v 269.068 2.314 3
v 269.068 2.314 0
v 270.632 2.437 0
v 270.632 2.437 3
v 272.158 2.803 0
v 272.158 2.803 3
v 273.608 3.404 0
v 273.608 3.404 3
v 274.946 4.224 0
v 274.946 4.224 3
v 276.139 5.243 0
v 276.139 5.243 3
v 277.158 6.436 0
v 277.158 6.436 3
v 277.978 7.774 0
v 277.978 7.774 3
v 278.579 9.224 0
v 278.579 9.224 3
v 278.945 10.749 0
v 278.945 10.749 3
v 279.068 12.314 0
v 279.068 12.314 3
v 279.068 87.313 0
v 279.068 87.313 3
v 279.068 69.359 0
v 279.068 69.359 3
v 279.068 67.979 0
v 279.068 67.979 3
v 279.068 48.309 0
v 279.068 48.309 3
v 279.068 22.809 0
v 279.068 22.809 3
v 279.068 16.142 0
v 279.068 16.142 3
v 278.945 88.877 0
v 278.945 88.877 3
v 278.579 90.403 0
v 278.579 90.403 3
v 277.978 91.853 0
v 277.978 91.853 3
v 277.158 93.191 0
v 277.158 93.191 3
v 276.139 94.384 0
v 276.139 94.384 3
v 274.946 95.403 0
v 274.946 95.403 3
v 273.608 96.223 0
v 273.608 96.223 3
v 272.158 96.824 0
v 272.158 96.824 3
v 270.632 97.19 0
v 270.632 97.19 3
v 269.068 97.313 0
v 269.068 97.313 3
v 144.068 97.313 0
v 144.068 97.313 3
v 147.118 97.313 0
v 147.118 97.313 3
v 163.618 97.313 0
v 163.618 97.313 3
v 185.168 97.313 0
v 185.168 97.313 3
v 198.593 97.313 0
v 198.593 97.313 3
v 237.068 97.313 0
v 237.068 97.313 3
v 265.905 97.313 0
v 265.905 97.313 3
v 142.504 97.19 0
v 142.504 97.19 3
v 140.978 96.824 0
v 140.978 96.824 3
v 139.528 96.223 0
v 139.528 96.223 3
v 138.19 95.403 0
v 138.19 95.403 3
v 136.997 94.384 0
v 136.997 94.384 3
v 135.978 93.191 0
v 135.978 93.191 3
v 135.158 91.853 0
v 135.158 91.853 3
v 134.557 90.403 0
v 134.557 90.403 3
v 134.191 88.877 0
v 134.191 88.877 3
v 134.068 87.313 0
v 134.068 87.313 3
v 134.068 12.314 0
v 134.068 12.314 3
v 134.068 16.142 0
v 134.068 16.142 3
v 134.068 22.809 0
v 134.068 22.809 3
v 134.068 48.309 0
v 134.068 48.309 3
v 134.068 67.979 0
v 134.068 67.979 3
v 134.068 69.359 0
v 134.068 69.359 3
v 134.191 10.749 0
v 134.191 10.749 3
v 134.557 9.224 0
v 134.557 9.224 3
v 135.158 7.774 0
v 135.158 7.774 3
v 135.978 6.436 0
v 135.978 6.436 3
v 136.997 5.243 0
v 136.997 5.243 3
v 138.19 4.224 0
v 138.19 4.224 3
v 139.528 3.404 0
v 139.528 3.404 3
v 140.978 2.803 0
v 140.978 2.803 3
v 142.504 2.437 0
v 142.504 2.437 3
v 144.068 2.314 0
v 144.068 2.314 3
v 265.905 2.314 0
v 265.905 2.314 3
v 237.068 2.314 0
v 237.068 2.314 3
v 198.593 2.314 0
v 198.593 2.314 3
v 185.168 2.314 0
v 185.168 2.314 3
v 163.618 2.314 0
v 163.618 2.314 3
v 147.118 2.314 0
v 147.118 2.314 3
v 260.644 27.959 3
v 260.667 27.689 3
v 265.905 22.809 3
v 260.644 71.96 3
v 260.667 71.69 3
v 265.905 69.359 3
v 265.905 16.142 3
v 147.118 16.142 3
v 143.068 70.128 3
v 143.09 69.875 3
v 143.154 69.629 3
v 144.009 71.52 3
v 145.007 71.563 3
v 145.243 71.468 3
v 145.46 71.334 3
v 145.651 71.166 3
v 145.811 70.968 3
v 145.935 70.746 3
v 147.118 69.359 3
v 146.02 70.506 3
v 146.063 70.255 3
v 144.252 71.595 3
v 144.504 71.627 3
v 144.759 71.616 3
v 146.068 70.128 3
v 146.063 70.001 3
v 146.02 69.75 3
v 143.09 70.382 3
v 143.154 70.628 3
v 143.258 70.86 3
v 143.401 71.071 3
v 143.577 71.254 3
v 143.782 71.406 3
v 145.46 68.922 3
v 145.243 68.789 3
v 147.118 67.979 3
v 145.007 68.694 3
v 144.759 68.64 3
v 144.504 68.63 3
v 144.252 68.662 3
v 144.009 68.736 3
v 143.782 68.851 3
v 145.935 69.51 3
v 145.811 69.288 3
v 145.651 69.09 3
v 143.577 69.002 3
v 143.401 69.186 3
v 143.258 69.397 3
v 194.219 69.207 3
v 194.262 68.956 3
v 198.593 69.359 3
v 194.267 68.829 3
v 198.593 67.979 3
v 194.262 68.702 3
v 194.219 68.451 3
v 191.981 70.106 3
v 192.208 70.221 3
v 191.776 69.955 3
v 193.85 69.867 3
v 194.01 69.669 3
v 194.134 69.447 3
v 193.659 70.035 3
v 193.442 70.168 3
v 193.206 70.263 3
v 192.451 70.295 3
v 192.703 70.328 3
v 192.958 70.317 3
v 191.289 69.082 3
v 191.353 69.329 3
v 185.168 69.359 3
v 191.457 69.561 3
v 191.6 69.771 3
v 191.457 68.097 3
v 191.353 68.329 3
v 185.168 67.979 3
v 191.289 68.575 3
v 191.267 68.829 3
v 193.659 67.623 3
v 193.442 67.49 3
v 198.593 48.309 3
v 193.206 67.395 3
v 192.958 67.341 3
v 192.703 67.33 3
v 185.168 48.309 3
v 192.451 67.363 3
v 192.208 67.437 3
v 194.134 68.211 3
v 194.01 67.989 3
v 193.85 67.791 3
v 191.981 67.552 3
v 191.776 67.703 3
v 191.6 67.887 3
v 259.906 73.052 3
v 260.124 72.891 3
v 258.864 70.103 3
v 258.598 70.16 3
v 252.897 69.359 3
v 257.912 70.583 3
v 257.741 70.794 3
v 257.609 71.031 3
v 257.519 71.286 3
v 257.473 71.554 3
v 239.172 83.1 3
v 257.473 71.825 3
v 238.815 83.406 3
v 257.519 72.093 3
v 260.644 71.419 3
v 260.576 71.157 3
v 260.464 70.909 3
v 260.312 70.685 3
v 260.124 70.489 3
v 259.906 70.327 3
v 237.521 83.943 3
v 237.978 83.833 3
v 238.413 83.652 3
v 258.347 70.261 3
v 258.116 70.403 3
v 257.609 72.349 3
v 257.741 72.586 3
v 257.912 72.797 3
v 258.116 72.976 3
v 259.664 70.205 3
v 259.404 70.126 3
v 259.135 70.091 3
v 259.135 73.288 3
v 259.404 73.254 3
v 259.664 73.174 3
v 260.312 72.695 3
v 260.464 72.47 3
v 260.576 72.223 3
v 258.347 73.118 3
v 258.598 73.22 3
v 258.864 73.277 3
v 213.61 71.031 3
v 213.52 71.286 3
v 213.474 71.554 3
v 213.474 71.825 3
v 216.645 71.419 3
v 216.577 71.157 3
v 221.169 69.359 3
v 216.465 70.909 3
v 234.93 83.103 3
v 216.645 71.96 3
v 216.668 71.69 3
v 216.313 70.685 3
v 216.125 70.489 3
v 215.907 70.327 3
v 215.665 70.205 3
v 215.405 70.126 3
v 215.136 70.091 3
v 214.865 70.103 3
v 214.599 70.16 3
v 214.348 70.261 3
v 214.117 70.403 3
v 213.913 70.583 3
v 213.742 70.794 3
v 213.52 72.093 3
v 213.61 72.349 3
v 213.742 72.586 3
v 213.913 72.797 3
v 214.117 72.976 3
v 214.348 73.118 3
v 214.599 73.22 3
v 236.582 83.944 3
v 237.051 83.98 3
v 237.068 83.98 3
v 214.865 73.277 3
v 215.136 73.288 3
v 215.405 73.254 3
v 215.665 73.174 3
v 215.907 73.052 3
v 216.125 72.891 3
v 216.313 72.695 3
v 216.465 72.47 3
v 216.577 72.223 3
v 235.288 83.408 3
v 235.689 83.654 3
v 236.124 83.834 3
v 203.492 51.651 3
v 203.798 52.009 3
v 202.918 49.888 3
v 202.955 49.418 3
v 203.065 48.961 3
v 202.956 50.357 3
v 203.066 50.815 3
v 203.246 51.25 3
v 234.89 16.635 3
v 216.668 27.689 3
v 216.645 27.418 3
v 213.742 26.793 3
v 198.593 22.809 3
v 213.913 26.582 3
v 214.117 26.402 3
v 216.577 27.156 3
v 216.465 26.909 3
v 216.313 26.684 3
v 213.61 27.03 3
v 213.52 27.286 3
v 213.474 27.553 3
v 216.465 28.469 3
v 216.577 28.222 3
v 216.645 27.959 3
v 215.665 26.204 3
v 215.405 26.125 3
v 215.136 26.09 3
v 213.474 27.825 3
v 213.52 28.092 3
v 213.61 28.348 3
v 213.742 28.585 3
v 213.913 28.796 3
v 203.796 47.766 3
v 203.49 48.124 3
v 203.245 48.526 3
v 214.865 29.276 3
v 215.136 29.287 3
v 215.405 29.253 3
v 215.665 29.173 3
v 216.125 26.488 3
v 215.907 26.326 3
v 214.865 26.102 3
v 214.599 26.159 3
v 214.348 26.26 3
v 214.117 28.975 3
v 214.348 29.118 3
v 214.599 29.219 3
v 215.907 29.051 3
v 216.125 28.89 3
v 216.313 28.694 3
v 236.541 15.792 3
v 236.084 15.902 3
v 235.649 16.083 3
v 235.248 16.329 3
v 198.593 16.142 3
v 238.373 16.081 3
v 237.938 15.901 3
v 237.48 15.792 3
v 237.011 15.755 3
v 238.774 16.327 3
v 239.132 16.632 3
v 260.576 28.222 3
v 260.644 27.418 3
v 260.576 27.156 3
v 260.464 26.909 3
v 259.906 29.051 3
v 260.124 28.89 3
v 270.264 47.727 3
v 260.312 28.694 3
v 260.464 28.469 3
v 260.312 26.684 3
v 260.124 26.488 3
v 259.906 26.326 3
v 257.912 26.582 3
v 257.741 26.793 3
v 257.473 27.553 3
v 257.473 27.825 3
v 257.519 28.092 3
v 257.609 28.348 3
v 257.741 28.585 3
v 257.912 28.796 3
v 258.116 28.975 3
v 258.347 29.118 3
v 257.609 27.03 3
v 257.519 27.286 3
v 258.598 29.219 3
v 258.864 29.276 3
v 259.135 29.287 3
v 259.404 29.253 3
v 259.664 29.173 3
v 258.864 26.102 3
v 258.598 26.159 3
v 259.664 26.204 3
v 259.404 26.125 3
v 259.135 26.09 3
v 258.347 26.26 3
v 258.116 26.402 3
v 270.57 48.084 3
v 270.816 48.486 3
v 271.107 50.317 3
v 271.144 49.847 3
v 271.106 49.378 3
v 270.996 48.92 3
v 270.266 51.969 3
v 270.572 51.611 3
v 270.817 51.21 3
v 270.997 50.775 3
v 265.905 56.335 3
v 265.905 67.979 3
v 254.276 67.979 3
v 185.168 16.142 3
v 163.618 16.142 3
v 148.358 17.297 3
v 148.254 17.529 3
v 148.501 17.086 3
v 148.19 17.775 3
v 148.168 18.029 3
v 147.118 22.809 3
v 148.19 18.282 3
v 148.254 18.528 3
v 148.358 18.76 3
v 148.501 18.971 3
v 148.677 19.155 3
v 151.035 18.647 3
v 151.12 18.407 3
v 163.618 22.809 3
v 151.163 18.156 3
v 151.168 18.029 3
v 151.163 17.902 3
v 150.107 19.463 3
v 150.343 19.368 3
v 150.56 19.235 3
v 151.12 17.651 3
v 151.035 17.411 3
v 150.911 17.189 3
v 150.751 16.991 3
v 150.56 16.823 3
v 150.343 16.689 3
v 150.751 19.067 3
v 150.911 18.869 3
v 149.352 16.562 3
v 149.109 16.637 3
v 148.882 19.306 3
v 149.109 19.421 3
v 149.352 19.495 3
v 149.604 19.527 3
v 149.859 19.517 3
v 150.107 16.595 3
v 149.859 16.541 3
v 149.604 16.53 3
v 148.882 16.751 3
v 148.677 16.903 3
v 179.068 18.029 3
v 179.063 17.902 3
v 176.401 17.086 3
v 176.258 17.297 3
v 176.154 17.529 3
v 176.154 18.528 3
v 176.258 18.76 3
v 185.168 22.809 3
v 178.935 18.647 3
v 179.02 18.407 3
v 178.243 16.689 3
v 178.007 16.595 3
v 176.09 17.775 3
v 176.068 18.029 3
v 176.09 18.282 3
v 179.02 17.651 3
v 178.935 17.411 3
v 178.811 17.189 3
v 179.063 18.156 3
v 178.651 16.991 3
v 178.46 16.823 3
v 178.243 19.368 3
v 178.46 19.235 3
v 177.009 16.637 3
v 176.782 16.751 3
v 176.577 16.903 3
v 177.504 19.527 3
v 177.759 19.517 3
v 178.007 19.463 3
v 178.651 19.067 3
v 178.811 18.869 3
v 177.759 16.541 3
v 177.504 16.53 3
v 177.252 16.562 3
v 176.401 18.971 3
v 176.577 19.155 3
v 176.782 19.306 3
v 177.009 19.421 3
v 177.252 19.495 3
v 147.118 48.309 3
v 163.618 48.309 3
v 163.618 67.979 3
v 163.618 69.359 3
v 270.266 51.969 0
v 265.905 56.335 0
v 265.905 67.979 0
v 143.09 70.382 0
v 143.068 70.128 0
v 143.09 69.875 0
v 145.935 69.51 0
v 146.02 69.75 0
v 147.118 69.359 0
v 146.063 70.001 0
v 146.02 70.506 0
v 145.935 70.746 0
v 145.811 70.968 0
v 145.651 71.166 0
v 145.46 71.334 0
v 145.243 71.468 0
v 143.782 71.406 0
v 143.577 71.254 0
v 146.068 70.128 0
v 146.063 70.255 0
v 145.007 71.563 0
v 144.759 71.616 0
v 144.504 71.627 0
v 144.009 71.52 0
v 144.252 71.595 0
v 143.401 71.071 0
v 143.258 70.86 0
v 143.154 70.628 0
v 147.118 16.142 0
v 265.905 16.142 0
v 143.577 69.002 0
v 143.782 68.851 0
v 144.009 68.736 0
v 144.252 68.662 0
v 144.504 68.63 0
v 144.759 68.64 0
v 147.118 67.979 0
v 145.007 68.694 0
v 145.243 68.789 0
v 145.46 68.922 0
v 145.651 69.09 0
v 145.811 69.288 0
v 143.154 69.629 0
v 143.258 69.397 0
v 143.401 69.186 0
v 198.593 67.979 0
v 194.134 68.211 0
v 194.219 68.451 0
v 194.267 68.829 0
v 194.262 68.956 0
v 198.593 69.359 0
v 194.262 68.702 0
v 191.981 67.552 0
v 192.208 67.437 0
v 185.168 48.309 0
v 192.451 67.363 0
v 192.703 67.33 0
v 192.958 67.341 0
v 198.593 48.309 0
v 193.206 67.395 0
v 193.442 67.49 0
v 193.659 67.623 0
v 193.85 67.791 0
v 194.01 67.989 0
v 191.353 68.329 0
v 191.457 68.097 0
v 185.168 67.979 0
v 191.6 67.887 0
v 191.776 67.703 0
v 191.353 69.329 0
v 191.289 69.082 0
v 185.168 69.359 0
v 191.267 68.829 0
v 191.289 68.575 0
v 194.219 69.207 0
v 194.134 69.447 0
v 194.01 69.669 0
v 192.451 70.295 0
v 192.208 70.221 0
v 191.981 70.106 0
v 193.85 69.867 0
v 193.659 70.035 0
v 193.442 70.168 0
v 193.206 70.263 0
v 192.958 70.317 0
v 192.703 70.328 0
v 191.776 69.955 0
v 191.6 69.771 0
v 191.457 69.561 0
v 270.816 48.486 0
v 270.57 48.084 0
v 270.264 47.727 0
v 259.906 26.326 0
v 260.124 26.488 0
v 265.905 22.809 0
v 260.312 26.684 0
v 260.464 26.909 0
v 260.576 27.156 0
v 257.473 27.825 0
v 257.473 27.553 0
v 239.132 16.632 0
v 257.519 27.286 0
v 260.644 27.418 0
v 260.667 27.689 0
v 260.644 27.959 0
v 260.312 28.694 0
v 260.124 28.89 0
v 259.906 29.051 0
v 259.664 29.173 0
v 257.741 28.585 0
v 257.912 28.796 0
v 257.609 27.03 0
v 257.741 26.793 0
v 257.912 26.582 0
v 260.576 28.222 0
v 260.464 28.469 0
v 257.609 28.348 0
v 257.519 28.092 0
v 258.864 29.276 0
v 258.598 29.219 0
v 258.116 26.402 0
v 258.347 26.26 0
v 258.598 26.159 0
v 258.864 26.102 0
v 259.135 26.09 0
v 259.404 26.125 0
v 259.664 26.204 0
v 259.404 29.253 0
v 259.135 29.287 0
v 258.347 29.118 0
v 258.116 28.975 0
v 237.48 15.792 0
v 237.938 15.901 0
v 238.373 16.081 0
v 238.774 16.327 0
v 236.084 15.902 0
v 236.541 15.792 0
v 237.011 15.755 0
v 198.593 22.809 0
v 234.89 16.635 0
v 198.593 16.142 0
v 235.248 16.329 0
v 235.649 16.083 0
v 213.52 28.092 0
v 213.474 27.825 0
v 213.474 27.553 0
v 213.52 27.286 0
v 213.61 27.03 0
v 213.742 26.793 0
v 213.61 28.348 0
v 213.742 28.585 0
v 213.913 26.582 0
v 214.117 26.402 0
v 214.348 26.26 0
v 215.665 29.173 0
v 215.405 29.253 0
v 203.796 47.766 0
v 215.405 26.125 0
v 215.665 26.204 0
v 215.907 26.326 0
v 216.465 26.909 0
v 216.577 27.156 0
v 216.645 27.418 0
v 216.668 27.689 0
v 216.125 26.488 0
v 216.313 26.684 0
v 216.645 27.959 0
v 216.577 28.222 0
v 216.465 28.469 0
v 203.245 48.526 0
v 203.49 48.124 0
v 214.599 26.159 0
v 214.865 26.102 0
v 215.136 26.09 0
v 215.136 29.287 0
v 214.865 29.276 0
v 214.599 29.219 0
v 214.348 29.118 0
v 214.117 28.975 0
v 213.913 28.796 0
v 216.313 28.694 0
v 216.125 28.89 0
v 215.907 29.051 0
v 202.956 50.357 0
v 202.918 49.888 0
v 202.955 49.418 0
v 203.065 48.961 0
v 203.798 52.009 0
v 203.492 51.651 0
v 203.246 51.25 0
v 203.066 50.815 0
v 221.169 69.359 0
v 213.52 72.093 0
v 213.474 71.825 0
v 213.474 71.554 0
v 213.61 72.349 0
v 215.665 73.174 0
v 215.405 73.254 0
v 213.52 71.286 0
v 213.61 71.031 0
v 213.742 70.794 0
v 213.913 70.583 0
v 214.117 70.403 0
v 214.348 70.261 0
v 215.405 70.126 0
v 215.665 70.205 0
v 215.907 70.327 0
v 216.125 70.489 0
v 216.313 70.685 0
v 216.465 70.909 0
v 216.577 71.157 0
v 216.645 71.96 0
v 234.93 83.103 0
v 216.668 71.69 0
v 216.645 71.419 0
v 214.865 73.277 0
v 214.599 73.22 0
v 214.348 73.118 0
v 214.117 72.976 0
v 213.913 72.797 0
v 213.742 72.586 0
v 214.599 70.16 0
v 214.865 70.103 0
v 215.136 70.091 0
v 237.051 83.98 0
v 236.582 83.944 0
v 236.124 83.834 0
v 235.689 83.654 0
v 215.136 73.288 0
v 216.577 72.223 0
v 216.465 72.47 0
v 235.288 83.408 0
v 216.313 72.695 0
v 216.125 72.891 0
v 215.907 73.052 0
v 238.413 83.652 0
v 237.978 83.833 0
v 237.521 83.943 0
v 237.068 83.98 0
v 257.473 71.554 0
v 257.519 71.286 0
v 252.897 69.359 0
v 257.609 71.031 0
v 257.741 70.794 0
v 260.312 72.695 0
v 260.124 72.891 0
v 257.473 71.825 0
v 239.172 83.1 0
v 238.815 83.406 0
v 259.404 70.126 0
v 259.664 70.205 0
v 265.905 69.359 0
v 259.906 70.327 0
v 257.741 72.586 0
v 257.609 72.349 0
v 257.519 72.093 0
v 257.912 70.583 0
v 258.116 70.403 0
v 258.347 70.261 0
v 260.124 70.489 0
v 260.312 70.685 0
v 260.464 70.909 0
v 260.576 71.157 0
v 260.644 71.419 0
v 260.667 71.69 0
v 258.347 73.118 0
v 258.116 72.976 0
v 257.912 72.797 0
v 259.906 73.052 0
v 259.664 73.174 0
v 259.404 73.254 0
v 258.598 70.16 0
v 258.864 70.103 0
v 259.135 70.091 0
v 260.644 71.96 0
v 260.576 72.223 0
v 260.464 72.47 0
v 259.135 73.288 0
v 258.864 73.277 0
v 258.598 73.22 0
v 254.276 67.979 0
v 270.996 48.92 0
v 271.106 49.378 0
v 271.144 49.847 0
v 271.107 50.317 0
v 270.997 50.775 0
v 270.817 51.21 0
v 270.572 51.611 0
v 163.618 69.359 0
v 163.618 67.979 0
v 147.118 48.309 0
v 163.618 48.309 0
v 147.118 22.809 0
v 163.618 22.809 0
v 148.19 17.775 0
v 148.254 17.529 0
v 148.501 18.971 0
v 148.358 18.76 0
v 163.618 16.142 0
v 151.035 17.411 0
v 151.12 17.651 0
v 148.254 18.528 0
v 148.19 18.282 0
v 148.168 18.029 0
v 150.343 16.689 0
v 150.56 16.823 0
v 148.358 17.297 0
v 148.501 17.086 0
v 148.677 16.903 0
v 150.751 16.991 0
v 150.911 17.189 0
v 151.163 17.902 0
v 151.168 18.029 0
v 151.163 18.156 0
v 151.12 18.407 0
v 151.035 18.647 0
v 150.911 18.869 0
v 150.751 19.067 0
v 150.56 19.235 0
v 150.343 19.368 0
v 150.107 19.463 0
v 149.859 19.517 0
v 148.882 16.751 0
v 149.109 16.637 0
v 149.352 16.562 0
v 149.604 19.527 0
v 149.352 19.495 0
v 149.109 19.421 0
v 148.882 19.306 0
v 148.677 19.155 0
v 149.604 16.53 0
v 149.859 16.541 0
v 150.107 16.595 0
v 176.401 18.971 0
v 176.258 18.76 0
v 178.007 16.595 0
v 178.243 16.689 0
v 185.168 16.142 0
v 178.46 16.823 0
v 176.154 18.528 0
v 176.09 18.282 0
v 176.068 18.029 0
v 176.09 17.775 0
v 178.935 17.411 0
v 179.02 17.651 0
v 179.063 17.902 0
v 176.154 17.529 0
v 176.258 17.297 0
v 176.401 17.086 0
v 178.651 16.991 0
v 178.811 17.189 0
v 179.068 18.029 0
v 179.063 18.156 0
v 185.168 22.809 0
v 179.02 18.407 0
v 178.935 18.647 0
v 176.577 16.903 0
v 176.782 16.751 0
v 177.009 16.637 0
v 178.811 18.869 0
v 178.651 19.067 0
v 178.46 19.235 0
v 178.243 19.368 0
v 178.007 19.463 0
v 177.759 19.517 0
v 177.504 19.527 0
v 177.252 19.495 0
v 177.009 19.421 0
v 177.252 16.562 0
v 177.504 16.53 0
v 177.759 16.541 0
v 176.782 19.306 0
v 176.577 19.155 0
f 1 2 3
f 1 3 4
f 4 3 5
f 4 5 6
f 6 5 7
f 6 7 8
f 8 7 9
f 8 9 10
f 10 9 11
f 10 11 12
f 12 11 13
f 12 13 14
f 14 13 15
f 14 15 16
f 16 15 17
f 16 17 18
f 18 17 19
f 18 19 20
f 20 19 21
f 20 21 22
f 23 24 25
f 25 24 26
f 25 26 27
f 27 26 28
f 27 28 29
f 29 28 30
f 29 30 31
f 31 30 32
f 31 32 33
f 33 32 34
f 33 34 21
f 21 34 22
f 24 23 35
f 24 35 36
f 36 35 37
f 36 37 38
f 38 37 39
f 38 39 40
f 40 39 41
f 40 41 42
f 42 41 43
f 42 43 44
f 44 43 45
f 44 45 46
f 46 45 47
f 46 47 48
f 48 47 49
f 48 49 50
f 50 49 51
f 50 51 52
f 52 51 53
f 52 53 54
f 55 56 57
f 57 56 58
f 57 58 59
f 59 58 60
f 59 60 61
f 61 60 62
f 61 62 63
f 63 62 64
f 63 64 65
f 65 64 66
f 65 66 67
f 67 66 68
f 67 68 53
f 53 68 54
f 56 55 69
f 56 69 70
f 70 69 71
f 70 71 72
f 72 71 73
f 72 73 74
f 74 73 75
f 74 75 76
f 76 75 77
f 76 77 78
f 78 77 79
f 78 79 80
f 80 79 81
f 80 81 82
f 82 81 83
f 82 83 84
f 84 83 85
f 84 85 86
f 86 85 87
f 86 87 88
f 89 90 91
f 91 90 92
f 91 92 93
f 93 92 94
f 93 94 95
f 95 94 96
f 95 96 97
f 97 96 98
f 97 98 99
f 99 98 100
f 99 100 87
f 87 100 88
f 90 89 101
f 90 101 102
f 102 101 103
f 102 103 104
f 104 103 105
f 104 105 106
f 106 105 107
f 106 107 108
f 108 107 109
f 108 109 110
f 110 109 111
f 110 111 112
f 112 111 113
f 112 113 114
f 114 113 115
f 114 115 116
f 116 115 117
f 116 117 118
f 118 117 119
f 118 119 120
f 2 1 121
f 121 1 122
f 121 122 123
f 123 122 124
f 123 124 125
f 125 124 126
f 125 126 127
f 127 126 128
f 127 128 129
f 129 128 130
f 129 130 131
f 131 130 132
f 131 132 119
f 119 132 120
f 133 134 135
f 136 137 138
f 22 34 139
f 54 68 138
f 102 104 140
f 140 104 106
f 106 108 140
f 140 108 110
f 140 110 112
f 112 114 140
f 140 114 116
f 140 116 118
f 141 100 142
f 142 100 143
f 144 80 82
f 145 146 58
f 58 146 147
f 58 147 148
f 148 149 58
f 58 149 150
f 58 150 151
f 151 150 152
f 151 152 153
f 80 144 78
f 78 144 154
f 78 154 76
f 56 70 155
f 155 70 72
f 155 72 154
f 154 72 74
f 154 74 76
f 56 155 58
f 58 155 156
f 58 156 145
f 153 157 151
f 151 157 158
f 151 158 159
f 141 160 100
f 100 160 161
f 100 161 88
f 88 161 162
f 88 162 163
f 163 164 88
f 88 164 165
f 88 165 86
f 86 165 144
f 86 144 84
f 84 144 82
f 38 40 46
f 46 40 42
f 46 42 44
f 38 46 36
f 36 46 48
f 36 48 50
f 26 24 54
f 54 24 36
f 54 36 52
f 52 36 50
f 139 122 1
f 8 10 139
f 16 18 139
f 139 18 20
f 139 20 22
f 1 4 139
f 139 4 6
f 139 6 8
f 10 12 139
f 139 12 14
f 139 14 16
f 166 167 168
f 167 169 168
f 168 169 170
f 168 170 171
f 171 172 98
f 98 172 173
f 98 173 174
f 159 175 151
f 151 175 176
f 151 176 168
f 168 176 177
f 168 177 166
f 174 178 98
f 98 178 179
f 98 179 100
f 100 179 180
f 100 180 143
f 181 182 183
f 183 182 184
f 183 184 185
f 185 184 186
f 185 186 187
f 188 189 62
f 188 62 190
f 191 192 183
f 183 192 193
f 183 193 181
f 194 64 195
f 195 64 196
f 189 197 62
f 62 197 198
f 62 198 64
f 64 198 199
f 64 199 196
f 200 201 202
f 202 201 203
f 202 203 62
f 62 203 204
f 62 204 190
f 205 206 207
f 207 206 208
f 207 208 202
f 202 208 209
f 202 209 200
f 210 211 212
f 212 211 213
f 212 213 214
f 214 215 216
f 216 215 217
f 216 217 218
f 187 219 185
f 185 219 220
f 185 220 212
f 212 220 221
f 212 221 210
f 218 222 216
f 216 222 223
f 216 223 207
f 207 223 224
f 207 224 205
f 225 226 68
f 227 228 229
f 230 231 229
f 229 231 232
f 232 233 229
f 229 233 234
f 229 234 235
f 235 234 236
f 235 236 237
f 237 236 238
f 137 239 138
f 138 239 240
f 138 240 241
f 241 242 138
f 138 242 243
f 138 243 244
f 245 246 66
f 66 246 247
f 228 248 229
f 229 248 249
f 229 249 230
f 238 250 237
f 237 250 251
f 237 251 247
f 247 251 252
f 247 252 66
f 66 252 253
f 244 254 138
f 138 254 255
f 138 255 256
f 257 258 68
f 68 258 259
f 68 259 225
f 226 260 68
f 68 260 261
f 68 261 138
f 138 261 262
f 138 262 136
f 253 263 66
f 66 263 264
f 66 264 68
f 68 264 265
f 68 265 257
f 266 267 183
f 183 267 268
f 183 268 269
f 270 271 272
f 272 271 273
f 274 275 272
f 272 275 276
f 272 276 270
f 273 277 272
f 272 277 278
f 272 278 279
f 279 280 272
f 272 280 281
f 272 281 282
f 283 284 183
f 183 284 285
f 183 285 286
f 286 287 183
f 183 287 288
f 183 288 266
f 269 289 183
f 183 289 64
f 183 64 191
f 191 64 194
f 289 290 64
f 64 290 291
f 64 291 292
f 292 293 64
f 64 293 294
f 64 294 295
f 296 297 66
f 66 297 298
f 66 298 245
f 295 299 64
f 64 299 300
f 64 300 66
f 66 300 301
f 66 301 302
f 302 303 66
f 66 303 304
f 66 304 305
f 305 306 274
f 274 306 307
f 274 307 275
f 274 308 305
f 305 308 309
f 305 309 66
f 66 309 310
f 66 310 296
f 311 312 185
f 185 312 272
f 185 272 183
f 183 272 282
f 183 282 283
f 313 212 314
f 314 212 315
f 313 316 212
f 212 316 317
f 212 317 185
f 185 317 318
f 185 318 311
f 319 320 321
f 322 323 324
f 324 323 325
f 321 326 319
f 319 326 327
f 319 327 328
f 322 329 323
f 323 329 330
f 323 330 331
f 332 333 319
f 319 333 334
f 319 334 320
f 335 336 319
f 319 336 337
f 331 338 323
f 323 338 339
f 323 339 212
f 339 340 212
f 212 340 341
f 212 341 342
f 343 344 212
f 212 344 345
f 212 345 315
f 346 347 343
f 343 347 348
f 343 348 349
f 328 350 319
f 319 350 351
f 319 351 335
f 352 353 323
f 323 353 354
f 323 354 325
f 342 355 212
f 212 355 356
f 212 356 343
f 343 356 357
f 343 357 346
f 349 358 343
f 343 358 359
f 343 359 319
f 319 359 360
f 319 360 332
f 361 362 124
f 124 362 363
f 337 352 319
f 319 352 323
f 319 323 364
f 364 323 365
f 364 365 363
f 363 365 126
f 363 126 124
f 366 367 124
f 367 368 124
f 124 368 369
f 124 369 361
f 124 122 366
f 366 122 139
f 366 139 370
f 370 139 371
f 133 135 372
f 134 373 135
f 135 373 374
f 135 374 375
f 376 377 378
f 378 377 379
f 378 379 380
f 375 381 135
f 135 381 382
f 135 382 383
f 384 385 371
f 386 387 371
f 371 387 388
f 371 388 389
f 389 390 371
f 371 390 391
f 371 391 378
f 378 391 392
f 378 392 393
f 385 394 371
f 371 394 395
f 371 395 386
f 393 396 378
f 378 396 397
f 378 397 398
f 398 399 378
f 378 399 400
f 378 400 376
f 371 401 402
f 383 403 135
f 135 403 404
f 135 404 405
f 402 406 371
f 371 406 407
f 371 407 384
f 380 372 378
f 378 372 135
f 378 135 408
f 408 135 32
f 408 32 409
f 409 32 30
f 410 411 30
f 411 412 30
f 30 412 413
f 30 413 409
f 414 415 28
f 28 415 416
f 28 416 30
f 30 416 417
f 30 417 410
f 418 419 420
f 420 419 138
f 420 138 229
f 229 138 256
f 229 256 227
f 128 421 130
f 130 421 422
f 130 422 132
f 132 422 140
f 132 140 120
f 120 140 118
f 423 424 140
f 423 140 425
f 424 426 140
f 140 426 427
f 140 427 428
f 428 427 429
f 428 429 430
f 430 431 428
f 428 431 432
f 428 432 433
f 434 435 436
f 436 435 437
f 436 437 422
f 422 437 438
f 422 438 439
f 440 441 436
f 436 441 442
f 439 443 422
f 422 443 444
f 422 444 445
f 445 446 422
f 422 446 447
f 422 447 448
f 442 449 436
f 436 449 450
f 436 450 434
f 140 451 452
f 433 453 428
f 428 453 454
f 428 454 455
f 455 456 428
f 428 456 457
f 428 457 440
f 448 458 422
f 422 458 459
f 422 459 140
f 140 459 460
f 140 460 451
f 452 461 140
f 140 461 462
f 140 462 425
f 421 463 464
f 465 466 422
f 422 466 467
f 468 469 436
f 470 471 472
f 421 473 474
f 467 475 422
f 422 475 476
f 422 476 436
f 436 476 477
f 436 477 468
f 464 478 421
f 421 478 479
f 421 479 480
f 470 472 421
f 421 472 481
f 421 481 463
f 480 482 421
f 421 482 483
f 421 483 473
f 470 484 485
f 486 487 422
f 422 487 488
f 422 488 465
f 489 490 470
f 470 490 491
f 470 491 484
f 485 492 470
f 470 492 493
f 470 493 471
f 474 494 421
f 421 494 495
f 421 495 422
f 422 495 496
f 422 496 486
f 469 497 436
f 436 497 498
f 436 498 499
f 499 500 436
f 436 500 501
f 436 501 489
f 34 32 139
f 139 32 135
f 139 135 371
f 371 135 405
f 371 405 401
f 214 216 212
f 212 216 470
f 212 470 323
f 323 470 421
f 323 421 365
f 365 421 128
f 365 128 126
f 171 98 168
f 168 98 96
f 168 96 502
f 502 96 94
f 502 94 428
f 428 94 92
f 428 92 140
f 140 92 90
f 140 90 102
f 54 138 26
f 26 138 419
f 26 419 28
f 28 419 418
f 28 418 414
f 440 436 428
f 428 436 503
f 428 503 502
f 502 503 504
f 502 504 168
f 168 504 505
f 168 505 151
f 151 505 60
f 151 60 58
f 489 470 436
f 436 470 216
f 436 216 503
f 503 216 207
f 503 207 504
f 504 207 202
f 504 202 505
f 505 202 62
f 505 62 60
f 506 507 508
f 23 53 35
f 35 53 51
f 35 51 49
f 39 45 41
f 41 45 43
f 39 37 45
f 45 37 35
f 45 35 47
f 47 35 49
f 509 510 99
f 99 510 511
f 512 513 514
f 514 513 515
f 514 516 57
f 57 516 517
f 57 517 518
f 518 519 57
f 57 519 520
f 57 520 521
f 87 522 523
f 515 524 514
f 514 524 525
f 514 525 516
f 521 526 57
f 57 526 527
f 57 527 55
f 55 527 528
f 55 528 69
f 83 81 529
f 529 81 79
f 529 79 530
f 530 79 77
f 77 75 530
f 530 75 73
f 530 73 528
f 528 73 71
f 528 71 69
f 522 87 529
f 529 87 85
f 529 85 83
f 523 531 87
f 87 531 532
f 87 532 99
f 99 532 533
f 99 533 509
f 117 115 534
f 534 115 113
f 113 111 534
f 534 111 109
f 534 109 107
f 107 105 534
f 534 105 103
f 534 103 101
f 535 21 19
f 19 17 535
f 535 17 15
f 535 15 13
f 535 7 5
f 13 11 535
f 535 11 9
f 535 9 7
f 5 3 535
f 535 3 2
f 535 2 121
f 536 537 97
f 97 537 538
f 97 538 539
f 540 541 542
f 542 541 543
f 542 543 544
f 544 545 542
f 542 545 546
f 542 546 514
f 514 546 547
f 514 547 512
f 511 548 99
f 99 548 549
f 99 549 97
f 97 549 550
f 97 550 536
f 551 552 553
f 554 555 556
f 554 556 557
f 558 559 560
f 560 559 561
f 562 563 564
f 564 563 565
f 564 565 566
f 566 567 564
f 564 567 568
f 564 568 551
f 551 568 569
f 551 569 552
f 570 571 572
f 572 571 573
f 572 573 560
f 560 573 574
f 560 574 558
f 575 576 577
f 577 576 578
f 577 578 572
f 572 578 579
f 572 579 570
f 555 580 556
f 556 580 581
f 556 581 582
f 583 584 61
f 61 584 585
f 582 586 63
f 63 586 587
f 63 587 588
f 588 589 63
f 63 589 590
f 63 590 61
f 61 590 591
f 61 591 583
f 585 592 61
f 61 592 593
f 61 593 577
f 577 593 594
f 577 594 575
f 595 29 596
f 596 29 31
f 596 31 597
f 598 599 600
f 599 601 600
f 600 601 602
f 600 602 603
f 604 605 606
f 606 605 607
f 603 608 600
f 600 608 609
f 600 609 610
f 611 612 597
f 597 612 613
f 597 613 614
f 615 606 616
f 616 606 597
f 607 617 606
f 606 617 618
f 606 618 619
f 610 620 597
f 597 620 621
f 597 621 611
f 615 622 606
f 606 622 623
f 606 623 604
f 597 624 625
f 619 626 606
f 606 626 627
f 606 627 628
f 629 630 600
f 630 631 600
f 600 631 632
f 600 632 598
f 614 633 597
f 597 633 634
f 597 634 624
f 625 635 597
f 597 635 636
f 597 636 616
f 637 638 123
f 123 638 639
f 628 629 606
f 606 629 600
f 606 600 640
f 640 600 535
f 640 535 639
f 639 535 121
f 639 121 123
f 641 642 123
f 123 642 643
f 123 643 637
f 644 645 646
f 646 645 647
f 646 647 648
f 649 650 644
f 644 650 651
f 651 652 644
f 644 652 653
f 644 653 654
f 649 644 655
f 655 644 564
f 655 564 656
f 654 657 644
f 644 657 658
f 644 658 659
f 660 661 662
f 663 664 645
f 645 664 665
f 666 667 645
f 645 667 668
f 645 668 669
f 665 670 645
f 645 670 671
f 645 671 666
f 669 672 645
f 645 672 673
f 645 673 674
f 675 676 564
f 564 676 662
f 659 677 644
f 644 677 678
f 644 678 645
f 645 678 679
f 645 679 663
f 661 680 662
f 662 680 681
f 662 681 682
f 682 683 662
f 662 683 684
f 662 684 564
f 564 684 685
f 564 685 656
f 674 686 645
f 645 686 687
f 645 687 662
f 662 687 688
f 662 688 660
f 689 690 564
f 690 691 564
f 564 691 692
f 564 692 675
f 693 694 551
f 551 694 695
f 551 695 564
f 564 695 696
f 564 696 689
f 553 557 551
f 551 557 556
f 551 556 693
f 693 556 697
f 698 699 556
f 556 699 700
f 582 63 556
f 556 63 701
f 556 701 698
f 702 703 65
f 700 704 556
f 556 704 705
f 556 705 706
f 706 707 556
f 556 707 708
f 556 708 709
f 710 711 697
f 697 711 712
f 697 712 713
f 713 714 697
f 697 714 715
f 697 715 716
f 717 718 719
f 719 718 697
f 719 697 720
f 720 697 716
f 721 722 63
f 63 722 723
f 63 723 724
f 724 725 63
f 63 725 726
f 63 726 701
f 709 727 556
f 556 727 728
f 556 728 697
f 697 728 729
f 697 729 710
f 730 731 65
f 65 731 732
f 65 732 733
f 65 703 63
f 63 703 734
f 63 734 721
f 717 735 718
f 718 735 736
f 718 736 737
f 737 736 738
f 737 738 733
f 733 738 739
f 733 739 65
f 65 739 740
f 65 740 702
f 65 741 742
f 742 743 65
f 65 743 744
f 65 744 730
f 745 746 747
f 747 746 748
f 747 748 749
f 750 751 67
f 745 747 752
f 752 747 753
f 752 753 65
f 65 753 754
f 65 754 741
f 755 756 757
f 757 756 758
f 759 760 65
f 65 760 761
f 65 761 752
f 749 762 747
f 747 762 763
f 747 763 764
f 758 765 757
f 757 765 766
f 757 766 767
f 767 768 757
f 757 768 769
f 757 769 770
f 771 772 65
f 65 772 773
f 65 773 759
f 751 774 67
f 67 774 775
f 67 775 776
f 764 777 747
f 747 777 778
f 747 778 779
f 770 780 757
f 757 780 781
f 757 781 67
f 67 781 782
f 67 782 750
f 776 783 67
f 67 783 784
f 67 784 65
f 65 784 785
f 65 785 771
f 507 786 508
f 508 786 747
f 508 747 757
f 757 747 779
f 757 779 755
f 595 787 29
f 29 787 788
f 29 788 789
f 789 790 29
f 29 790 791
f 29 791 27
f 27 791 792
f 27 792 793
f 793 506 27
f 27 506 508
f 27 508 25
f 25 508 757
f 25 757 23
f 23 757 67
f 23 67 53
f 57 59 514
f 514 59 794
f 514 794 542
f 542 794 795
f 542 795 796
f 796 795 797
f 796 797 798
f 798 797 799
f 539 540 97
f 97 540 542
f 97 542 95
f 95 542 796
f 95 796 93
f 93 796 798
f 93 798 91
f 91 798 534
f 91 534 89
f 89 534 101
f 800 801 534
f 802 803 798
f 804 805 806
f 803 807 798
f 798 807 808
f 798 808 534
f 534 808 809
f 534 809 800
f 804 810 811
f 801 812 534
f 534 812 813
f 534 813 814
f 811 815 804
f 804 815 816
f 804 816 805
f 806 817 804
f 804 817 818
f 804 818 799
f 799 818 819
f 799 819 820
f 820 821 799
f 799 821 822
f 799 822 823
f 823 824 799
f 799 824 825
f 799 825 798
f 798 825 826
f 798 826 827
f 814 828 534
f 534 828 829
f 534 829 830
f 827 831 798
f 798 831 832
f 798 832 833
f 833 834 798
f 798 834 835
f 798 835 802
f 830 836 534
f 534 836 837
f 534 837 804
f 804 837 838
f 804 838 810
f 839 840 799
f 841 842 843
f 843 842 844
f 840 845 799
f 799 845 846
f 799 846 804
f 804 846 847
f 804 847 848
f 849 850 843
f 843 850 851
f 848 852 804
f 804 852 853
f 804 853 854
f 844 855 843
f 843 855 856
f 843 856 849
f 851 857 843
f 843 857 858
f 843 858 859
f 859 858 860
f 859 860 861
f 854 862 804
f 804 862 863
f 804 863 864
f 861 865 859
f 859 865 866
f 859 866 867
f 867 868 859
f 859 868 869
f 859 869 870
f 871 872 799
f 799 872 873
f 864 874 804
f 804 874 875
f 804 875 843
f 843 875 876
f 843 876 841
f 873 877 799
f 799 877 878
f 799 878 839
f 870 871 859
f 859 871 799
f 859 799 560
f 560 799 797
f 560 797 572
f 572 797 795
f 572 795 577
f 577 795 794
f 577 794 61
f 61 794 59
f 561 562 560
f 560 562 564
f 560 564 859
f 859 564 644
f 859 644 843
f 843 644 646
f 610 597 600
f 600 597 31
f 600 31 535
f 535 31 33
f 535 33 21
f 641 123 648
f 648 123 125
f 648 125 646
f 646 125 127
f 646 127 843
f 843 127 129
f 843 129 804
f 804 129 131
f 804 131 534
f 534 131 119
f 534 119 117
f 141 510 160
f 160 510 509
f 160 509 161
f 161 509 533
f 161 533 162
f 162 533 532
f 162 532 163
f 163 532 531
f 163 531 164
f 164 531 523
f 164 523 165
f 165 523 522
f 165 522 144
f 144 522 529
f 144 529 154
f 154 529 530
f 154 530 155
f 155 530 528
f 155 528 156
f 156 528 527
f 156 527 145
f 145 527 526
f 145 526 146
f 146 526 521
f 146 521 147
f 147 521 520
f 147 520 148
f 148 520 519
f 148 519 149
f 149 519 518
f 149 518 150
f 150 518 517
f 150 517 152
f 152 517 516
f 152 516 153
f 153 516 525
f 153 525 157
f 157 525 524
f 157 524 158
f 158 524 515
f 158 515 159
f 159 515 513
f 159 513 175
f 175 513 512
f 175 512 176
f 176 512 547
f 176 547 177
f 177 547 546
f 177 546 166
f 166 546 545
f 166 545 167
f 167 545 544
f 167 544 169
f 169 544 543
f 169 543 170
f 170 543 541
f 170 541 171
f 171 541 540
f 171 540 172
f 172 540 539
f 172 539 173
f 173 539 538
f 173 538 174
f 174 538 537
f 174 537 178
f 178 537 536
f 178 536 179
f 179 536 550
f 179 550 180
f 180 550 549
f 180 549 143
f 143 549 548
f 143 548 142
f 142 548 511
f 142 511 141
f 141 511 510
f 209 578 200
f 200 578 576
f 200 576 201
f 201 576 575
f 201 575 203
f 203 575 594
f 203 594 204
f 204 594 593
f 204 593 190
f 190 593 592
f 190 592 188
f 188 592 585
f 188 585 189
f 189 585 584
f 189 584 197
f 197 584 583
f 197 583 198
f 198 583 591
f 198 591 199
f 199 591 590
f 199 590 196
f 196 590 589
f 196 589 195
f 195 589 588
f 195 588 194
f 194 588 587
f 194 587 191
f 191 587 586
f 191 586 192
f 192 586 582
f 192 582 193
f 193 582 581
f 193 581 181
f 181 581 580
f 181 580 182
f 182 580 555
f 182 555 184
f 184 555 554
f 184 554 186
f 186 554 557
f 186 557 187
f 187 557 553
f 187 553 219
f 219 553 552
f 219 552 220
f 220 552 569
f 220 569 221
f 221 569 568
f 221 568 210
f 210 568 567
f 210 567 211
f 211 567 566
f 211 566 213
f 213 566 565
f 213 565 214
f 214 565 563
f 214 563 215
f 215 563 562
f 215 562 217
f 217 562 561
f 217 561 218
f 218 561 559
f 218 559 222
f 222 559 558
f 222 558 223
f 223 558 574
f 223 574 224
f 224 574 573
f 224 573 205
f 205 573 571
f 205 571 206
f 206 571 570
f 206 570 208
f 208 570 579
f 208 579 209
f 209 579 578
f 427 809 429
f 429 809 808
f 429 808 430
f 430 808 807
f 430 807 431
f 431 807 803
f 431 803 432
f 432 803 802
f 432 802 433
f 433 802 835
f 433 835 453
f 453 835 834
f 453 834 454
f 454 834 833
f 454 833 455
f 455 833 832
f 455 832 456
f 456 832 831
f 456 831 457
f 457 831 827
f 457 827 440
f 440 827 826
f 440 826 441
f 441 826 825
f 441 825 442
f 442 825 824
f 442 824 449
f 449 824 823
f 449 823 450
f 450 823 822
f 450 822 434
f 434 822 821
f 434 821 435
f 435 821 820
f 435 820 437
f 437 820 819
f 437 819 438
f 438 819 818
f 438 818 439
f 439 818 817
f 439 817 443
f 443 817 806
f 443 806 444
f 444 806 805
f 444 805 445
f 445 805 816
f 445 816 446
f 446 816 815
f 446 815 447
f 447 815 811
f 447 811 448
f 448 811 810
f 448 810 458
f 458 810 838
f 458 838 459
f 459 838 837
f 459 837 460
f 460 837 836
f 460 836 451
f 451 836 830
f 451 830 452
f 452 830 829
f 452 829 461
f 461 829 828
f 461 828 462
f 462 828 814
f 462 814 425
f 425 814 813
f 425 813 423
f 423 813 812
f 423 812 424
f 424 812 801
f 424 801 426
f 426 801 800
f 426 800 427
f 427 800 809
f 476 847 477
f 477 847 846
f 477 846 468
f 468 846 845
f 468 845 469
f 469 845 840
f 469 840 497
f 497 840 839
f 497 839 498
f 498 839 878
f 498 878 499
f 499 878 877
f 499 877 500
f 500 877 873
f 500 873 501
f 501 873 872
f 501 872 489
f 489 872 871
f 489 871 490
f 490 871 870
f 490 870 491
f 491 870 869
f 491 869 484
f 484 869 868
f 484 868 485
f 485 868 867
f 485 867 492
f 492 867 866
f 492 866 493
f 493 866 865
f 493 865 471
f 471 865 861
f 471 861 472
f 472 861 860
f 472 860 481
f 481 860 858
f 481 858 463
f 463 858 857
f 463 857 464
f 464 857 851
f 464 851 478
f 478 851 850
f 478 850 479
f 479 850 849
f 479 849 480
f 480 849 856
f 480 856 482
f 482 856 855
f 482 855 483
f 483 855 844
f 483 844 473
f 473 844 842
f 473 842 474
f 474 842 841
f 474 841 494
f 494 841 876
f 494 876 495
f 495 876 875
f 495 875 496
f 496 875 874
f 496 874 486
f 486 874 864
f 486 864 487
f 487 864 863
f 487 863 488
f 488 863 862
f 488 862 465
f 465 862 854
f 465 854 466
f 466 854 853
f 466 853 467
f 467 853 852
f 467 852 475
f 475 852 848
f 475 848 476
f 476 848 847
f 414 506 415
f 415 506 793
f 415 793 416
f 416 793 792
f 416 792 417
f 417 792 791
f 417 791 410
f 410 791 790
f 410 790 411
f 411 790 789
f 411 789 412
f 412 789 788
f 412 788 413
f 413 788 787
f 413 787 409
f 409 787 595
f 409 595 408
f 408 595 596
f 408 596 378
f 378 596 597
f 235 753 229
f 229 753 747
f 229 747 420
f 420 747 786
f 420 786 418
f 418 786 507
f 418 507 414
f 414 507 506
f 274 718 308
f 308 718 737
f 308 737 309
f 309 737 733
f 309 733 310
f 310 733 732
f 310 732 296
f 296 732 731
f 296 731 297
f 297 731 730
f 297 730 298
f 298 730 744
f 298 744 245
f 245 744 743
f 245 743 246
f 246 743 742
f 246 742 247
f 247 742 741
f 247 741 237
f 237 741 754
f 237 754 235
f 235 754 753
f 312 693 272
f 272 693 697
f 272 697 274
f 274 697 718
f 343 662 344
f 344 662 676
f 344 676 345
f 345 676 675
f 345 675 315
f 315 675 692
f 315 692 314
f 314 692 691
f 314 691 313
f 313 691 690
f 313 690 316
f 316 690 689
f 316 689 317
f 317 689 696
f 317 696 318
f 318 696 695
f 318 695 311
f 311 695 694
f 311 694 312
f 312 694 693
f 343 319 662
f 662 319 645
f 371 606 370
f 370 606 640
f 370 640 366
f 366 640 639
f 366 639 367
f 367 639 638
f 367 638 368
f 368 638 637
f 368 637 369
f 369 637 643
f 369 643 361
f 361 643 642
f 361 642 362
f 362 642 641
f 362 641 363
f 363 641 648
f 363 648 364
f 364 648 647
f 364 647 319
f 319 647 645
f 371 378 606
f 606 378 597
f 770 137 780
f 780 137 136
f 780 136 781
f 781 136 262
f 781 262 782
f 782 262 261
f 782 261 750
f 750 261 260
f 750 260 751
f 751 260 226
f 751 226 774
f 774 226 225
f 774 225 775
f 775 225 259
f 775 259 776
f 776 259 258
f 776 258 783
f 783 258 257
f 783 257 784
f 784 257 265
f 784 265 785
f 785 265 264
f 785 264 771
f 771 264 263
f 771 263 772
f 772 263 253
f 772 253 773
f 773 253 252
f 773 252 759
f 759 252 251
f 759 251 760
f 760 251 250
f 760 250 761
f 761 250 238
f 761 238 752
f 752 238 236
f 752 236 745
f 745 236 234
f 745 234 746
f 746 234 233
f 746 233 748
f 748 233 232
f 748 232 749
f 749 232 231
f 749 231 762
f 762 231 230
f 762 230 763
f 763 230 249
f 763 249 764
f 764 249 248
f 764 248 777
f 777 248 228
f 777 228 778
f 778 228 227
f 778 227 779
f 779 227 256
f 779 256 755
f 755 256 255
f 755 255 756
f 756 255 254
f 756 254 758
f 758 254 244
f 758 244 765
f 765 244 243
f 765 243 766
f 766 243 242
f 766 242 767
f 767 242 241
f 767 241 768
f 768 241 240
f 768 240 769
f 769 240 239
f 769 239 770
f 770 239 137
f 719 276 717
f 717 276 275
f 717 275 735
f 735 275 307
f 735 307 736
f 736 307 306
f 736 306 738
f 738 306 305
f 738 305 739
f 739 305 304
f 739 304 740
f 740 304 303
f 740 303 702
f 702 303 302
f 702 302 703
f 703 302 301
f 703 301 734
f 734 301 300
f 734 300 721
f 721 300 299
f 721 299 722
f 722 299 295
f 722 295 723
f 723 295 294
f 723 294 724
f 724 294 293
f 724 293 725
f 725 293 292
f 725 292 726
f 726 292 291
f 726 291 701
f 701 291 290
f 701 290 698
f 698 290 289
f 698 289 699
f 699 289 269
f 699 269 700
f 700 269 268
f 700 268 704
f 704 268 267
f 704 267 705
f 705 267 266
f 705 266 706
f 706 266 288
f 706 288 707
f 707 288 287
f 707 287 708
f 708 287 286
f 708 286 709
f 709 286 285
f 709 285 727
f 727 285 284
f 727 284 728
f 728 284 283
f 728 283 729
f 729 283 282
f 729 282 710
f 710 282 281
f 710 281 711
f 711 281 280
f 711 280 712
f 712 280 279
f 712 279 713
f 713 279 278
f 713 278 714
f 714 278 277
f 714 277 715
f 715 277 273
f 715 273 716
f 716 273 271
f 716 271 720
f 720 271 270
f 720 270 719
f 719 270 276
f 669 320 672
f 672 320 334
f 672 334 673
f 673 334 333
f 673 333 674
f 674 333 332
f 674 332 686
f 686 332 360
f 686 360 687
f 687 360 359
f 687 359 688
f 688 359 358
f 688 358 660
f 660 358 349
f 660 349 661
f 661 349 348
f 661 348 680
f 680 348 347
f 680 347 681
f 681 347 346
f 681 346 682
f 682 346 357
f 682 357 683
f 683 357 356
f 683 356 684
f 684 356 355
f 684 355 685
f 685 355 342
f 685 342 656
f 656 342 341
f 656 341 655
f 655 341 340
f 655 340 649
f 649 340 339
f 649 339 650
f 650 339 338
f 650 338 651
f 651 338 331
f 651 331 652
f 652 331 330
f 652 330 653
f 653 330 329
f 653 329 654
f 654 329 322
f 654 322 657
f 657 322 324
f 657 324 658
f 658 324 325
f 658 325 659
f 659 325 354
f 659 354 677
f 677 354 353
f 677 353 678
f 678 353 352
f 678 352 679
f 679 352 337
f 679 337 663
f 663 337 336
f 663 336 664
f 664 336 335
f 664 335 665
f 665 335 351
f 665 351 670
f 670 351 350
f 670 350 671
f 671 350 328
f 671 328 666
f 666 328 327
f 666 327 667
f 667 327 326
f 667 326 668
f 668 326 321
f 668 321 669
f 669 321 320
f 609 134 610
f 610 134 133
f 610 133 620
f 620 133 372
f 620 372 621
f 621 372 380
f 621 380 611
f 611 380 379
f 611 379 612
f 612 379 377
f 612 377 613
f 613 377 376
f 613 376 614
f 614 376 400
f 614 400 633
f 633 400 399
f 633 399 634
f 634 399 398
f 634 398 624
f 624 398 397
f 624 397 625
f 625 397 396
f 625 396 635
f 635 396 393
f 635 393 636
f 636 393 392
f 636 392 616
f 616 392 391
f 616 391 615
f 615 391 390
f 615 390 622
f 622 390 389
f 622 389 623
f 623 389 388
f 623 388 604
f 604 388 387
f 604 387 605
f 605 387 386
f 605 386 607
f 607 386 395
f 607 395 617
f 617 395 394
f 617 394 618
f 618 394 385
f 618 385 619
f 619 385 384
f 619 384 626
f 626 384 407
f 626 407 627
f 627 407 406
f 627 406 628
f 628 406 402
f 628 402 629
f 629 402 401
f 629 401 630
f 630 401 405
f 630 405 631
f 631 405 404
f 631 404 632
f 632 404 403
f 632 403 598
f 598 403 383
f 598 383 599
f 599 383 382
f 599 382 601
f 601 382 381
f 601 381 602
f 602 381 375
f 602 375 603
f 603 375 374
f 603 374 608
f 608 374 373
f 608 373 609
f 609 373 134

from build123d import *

# Parameters (mm, degrees)
SKETCH_1_R          = 1.5
EXTRUDE_1_DEPTH     = 3
SKETCH_2_R          = 1.6
CUT_EXTRUDE_1_DEPTH = 296.563476419


with BuildPart() as part:
    # 草图1 → 凸台-拉伸1 (new body)
    with BuildSketch(Plane(origin=(0, 0, 0), x_dir=(-1, 0, 0), z_dir=(0, 0, -1))):
        with BuildLine():
            Line((-269.068, 2.31372), (-144.068, 2.31372))
            ThreePointArc((-144.068, 2.31372), (-136.996932188, 5.242652188), (-134.068, 12.31372))
            Line((-134.068, 12.31372), (-134.068, 87.313))
            ThreePointArc((-134.068, 87.313), (-136.996932188, 94.384067812), (-144.068, 97.313))
            Line((-144.068, 97.313), (-269.068, 97.313))
            ThreePointArc((-269.068, 97.313), (-276.139067812, 94.384067812), (-279.068, 87.313))
            Line((-279.068, 87.313), (-279.068, 12.31372))
            ThreePointArc((-279.068, 12.31372), (-276.139067812, 5.242652188), (-269.068, 2.31372))
        make_face()
        with Locations(Location((-144.568, 70.12826533, 0), (0, 0, 180))):
            Circle(SKETCH_1_R, mode=Mode.SUBTRACT)
        with Locations(Location((-192.767, 68.82896533, 0), (0, 0, 180))):
            Circle(SKETCH_1_R, mode=Mode.SUBTRACT)
        with Locations(Location((-149.668, 18.02876533, 0), (0, 0, 180))):
            Circle(SKETCH_1_R, mode=Mode.SUBTRACT)
        with Locations(Location((-215.068, 71.68966533, 0), (0, 0, 180))):
            Circle(SKETCH_1_R, mode=Mode.SUBTRACT)
        with Locations(Location((-259.067, 71.68966533, 0), (0, 0, 180))):
            Circle(SKETCH_1_R, mode=Mode.SUBTRACT)
        with Locations(Location((-259.067, 27.68886533, 0), (0, 0, 180))):
            Circle(SKETCH_1_R, mode=Mode.SUBTRACT)
        with Locations(Location((-215.068, 27.68886533, 0), (0, 0, 180))):
            Circle(SKETCH_1_R, mode=Mode.SUBTRACT)
        with Locations(Location((-177.568, 18.02876533, 0), (0, 0, 180))):
            Circle(SKETCH_1_R, mode=Mode.SUBTRACT)
        with BuildLine():
            Line((-270.266244411, 51.969241805), (-239.172302587, 83.100283559))
            ThreePointArc((-239.172302587, 83.100283559), (-237.051506509, 83.980227838), (-234.929662654, 83.102813116))
            Line((-234.929662654, 83.102813116), (-203.798358898, 52.008609603))
            ThreePointArc((-203.798358898, 52.008609603), (-202.918414619, 49.887813524), (-203.795829341, 47.765969669))
            Line((-203.795829341, 47.765969669), (-234.889771164, 16.634927916))
            ThreePointArc((-234.889771164, 16.634927916), (-237.010567242, 15.754983637), (-239.132411097, 16.632398358))
            Line((-239.132411097, 16.632398358), (-270.263714853, 47.726601872))
            ThreePointArc((-270.263714853, 47.726601872), (-271.143659132, 49.84739795), (-270.266244411, 51.969241805))
        make_face(mode=Mode.SUBTRACT)
    extrude(amount=-EXTRUDE_1_DEPTH)

    # 草图2 → 切除-拉伸1 (cut, through all)
    with BuildSketch(Plane.XY.offset(3)):
        with Locations((259.067, 71.68966533)):
            Circle(SKETCH_2_R)
        with Locations((215.068, 71.68966533)):
            Circle(SKETCH_2_R)
        with Locations((215.068, 27.68886533)):
            Circle(SKETCH_2_R)
        with Locations((259.067, 27.68886533)):
            Circle(SKETCH_2_R)
    extrude(amount=-CUT_EXTRUDE_1_DEPTH, mode=Mode.SUBTRACT)


solid = part.part
